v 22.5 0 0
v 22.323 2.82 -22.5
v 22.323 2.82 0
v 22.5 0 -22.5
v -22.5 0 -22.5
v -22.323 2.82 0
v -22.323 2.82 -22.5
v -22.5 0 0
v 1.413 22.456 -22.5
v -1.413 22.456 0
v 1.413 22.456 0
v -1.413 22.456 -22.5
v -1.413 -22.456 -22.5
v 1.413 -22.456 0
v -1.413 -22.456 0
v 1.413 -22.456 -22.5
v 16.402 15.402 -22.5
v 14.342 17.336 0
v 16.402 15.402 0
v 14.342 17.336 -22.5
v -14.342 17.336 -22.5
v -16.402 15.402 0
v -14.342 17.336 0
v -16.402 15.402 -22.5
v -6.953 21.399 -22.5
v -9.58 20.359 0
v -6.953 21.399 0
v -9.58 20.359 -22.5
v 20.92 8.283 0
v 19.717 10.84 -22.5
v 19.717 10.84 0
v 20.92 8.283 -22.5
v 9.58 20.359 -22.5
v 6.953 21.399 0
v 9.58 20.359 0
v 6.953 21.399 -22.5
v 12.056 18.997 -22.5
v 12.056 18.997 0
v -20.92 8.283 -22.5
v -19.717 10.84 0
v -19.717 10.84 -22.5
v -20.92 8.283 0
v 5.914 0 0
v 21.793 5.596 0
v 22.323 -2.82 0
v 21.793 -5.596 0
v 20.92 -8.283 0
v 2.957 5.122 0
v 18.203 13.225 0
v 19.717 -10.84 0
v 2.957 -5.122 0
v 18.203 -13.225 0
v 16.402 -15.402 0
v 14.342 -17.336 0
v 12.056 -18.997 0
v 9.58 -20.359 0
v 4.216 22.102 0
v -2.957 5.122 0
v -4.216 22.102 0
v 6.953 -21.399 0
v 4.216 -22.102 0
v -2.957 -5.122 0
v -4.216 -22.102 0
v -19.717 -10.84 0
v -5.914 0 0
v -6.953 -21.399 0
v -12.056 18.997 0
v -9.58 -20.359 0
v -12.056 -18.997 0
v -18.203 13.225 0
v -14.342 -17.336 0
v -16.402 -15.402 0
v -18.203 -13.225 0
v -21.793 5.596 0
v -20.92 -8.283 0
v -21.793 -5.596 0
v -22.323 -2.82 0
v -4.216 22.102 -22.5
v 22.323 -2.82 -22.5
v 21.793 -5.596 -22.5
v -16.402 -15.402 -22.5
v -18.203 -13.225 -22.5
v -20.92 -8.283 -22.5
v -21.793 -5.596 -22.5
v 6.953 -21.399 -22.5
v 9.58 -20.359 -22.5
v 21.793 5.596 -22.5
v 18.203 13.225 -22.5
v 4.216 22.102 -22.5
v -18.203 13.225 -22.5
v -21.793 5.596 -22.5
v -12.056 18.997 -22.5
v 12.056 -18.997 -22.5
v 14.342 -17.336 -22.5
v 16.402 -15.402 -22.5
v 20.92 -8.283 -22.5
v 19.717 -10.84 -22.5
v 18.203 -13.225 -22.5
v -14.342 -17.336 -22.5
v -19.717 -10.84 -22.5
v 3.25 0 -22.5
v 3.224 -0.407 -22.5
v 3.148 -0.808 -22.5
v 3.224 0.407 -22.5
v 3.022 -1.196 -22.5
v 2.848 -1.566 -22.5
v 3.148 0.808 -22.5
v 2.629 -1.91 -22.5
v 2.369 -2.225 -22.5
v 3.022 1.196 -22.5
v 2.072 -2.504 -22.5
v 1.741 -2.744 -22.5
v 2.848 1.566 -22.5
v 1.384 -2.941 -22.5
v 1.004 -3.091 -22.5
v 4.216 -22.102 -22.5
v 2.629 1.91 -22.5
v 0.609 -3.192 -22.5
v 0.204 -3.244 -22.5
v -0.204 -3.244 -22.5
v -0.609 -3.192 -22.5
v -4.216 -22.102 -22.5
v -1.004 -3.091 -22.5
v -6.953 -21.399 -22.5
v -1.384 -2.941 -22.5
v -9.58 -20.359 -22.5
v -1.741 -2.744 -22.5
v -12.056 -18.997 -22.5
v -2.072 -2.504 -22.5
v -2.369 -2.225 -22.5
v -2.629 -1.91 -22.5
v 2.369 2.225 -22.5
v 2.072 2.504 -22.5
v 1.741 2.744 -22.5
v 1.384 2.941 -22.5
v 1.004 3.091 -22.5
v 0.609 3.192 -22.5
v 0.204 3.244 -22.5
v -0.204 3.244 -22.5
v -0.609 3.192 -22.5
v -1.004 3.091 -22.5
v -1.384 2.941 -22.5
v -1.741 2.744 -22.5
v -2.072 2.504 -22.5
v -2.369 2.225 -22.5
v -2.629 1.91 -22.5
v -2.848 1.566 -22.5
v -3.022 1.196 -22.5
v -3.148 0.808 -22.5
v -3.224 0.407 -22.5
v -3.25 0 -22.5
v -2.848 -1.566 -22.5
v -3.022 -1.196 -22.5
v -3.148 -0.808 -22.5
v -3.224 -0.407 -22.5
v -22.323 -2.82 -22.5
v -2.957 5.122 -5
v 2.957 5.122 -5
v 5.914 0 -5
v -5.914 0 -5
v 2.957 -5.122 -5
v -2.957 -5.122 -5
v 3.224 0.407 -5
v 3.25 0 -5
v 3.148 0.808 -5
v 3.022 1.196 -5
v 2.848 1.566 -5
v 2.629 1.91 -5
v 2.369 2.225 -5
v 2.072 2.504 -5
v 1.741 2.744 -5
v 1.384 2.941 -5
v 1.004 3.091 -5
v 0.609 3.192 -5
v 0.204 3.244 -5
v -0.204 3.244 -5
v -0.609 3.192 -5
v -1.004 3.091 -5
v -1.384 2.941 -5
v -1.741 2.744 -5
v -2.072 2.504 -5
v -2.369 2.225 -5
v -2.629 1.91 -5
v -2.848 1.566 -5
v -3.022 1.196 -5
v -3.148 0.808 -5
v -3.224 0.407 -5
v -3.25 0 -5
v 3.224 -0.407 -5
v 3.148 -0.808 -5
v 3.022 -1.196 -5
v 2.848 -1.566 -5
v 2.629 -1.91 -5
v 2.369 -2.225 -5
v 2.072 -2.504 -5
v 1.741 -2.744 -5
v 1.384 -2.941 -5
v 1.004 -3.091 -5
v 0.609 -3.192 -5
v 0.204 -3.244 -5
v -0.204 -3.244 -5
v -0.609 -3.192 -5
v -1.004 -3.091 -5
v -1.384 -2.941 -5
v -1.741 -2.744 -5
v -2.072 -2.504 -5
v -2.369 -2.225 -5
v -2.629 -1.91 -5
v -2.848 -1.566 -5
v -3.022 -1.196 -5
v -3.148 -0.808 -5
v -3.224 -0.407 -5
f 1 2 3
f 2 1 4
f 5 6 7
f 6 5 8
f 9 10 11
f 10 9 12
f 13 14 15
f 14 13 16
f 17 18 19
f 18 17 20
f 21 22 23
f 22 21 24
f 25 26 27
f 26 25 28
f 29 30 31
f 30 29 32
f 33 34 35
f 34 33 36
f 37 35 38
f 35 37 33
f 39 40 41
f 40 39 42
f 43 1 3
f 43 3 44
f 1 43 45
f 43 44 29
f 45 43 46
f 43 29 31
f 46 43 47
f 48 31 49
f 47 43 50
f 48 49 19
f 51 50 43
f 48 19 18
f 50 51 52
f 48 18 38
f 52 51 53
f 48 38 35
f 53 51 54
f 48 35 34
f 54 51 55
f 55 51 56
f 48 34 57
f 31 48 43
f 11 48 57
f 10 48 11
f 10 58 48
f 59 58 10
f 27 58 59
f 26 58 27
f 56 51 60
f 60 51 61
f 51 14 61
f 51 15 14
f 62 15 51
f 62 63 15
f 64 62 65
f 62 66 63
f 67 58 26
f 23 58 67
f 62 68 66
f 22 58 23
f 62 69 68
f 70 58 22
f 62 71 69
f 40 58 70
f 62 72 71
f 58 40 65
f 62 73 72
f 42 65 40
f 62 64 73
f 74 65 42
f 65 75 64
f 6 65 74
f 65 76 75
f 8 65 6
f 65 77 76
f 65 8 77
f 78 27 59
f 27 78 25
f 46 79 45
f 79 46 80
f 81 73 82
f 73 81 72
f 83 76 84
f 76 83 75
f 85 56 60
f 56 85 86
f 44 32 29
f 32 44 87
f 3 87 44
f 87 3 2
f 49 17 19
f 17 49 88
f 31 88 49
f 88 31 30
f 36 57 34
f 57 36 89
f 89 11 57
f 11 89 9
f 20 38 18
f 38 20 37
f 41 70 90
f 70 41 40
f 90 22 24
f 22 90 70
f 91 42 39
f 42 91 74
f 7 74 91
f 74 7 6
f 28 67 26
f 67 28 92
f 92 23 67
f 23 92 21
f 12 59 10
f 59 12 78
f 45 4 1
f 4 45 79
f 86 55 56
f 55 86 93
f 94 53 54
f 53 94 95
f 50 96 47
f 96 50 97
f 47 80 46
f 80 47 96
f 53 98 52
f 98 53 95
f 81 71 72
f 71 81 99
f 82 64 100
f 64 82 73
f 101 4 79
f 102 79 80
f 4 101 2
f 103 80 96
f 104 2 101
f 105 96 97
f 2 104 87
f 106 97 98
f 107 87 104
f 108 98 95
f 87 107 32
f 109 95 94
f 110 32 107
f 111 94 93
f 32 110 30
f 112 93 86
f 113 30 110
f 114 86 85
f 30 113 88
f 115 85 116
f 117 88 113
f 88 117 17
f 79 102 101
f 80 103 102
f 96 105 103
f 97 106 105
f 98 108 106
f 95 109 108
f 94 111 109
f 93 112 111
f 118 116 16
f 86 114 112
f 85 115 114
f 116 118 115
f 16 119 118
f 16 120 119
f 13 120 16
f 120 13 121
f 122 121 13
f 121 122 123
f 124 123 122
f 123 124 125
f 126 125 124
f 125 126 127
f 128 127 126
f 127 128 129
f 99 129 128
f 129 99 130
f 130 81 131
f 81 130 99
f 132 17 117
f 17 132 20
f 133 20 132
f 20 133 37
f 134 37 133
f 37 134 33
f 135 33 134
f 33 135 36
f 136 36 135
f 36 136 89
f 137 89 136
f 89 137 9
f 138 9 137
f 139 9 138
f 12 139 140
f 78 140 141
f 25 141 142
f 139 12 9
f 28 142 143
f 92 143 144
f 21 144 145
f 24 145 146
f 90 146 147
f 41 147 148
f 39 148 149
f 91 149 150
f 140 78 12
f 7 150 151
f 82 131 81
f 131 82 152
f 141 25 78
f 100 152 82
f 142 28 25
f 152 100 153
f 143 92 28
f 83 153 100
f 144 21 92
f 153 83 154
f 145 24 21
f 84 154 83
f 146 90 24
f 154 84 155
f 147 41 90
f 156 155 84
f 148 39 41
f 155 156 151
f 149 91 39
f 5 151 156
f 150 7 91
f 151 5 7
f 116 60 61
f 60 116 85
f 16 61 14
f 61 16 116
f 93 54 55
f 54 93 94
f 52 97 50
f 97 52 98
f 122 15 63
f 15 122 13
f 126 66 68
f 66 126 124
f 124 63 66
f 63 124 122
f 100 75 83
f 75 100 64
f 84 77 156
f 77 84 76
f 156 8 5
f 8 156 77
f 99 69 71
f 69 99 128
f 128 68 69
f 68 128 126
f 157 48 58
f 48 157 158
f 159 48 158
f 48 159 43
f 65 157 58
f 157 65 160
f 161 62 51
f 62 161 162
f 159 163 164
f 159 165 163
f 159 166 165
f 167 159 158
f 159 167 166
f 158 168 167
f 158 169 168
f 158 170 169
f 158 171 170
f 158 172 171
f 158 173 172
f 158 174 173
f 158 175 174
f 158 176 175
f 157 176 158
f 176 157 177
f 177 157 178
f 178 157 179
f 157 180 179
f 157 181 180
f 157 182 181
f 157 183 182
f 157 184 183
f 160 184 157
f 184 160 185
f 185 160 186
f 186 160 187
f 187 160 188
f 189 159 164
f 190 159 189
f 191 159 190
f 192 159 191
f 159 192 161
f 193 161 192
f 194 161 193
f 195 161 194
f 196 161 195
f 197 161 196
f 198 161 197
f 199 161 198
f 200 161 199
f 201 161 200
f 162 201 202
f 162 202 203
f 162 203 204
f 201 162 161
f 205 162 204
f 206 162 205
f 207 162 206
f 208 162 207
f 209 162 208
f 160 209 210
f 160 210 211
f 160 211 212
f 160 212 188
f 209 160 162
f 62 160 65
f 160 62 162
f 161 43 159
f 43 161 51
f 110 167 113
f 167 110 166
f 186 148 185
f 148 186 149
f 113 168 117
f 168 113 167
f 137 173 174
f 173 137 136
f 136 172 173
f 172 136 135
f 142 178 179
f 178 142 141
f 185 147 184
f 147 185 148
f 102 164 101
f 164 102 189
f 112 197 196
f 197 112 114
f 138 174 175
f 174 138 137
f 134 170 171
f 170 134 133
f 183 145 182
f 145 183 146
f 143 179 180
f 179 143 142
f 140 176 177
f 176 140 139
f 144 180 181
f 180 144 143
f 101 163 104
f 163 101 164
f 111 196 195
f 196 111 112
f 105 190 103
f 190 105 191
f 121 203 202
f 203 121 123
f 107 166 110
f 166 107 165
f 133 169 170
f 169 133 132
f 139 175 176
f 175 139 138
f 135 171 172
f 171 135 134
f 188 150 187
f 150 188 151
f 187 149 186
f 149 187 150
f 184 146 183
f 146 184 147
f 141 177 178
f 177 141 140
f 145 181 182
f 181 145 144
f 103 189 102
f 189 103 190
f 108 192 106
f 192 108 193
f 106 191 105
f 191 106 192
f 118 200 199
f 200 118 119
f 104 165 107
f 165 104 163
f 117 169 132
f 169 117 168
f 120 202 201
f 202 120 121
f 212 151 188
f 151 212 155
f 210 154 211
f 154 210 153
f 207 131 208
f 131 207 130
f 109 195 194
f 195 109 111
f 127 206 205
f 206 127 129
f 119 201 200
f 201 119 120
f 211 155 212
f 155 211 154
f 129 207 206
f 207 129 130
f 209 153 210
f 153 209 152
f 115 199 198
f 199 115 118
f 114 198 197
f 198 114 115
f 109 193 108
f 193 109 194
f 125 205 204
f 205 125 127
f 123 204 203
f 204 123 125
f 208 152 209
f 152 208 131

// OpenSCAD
$fn = 50;

difference() {
	union() {
		translate(v = [0, 0, -22.5]) {
			cylinder(h = 22.5, r = 22.5);
		}
		#translate(v = [0, 0, -24.0]) {
			cylinder(h = 24, r = 2.875);
		}
	}
	union() {
		translate(v = [0, 0, 0]) {
			rotate(a = [0, 0, 0]) {
				difference() {
					union() {
						translate(v = [0, 0, -5]) {
							linear_extrude(height = 5) {
								polygon(points = [[5.914249999999999, 0.0], [2.957125, 5.1218907443321156], [-2.9571249999999982, 5.1218907443321156], [-5.914249999999999, 7.242867331857232e-16], [-2.9571250000000022, -5.121890744332115], [2.9571249999999956, -5.121890744332118]]);
							}
						}
					}
					union();
				}
			}
		}
		#translate(v = [0, 0, -100.0]) {
			cylinder(h = 200, r = 3.25);
		}
	}
}
